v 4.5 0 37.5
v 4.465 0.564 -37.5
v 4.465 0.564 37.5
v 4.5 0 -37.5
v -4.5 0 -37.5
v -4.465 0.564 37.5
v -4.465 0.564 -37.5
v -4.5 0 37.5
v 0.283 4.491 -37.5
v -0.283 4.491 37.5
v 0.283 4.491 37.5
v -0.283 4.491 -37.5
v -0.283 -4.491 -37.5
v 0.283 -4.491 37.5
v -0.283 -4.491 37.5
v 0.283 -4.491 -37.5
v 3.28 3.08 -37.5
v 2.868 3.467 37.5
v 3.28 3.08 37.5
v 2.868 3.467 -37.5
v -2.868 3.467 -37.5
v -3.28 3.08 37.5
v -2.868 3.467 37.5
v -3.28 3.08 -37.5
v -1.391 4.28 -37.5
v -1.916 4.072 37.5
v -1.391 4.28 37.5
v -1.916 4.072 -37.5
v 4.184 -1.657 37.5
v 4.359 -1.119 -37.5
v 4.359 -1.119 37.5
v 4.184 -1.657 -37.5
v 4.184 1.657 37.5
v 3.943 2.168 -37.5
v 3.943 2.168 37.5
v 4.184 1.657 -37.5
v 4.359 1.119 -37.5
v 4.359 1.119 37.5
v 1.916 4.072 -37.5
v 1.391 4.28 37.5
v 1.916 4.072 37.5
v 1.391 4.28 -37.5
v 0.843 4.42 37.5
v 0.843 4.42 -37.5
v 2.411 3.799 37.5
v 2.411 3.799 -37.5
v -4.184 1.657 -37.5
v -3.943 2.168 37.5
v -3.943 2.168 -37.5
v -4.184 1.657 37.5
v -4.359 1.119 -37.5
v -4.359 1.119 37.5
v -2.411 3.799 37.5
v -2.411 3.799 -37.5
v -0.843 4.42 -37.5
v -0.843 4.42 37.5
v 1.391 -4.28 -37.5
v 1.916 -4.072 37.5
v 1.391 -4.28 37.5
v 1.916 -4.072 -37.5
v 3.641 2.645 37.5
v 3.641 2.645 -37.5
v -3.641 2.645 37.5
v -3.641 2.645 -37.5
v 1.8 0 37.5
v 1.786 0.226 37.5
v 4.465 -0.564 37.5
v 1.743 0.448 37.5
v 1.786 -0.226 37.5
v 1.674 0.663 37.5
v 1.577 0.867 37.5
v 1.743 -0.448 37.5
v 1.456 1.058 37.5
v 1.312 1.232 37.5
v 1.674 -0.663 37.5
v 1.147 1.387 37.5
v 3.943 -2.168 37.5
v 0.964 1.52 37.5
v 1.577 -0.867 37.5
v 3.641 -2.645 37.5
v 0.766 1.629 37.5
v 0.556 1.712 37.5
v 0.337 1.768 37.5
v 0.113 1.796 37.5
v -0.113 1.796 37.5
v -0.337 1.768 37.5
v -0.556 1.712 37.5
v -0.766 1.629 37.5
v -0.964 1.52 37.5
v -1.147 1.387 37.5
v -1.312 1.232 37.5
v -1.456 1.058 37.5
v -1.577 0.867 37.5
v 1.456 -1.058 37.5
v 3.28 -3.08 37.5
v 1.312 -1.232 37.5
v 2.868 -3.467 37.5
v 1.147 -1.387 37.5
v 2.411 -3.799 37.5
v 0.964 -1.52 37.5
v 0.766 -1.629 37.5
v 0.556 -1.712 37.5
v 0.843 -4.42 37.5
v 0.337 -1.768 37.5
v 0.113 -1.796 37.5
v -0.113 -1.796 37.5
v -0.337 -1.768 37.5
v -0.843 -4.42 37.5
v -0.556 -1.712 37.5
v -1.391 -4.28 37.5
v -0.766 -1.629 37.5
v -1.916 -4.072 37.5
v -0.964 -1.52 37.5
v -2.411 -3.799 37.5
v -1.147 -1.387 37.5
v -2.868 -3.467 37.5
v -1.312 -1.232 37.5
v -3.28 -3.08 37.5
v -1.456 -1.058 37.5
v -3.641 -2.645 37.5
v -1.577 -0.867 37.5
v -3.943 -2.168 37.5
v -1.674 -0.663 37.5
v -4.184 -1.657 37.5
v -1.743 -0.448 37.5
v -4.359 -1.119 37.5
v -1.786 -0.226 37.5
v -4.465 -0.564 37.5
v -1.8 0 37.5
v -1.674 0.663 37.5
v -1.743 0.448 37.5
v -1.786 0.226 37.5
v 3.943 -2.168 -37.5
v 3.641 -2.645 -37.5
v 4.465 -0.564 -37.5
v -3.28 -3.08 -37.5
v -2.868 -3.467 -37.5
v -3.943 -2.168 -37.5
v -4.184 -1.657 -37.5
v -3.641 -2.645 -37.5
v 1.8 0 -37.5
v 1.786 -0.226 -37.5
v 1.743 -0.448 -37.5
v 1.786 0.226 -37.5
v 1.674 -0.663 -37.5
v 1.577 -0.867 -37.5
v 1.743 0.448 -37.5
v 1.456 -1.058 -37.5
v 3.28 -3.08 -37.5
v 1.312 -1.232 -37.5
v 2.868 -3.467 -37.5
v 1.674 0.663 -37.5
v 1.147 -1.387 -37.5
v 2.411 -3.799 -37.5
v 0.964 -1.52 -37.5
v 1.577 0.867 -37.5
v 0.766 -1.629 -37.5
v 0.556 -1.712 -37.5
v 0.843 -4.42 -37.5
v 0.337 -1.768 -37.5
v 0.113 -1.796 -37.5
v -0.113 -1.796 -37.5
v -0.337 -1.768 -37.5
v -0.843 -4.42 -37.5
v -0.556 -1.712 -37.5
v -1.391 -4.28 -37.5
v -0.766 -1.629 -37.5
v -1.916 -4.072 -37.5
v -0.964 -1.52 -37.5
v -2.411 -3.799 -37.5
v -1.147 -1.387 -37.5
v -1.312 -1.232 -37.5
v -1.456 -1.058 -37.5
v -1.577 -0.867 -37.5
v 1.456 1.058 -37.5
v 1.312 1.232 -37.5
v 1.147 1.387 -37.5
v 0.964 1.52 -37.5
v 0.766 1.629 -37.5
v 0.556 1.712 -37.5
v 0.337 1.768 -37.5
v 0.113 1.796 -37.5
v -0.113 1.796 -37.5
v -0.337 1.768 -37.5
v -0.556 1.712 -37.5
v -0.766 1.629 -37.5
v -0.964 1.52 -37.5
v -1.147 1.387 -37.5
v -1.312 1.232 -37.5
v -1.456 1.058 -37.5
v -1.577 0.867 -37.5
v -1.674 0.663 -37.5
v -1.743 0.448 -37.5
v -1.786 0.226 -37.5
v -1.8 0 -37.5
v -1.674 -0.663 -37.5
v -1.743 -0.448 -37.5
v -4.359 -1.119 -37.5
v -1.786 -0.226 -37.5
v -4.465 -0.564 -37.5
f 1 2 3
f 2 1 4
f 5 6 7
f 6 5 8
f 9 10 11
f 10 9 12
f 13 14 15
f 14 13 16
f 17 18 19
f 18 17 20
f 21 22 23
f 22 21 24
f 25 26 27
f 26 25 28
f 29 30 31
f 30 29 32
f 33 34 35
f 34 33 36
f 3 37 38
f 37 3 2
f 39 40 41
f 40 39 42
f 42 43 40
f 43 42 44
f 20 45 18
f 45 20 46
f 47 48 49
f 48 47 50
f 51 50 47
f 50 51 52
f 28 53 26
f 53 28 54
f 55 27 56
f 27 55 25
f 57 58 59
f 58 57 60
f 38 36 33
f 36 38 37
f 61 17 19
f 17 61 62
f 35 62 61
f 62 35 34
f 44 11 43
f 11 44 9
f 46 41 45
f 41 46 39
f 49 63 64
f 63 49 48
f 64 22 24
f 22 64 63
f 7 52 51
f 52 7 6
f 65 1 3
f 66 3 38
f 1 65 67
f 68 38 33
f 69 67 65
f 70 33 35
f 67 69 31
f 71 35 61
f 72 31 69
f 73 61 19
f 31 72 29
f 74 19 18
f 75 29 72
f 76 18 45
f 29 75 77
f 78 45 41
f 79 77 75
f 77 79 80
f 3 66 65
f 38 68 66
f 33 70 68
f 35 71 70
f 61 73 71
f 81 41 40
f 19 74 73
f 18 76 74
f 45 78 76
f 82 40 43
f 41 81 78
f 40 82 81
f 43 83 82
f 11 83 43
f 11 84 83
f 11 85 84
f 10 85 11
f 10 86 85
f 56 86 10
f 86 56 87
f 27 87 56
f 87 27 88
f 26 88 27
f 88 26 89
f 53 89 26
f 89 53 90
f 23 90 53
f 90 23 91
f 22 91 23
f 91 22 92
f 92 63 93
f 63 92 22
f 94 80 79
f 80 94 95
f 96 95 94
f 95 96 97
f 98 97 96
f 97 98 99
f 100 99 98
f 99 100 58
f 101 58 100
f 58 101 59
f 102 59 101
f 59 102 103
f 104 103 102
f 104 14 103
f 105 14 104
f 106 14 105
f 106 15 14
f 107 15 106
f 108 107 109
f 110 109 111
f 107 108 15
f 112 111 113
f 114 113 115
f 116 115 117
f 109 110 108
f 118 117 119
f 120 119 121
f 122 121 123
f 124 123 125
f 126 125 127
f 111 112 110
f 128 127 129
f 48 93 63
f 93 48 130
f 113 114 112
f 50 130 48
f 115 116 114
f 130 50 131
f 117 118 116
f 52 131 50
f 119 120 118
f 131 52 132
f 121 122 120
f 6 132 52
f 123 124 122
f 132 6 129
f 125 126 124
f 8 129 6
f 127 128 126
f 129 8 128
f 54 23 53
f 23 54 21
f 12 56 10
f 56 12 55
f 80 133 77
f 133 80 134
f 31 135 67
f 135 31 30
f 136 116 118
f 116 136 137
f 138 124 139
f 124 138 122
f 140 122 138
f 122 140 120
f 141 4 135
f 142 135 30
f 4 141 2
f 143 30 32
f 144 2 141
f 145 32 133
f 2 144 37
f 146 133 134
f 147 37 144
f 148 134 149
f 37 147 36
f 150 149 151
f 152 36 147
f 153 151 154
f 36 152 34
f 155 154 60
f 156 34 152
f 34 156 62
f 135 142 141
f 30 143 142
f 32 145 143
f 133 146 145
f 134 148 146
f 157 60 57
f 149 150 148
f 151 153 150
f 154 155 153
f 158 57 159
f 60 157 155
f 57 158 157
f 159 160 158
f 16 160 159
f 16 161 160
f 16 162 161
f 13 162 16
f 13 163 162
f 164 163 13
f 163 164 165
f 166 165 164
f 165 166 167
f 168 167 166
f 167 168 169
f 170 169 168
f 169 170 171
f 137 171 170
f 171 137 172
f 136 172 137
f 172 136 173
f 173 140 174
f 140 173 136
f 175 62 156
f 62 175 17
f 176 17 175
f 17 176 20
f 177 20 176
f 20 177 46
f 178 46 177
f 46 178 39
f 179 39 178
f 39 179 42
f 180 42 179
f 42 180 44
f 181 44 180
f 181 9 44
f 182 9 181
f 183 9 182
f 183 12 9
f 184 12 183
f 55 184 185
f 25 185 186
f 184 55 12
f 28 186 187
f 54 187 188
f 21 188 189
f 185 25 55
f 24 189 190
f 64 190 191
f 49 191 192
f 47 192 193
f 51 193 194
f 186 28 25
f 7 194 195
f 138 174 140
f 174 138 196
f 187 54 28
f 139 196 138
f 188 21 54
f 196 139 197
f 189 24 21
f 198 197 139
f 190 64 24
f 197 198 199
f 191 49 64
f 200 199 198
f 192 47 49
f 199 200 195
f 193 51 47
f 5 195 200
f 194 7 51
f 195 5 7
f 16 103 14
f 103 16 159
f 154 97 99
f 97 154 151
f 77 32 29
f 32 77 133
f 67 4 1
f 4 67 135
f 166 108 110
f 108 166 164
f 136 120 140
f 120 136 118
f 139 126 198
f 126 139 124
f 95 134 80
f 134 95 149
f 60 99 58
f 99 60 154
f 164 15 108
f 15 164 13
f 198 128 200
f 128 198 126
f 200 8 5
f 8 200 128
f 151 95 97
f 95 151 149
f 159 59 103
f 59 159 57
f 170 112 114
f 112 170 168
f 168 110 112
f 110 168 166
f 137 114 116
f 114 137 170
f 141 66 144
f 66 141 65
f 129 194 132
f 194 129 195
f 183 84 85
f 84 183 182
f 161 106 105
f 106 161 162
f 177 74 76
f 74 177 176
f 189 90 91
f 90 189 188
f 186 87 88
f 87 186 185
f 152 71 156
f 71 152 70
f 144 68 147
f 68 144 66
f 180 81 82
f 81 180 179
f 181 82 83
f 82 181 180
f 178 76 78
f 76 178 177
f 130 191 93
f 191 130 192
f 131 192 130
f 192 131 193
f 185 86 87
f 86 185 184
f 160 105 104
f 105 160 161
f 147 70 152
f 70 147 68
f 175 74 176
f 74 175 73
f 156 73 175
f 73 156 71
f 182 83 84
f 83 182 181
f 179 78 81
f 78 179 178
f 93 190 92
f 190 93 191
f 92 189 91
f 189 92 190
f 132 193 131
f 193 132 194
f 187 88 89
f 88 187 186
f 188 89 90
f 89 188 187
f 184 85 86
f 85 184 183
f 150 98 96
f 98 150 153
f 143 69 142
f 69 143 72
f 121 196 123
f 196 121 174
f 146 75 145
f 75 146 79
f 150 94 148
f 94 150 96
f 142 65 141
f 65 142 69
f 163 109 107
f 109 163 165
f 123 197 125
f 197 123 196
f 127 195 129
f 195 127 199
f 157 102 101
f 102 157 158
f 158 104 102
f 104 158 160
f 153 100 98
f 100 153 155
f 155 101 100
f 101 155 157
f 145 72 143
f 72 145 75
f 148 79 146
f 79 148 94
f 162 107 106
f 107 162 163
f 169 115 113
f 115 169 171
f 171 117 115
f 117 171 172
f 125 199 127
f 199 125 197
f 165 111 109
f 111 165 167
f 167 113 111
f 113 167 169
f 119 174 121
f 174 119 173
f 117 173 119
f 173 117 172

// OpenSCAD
$fn = 50;


difference() {
	union() {
		translate(v = [0, 0, -37.5000000000]) {
			cylinder(h = 75, r = 4.5000000000);
		}
	}
	union() {
		translate(v = [0, 0, -100.0000000000]) {
			cylinder(h = 200, r = 1.8000000000);
		}
	}
}
